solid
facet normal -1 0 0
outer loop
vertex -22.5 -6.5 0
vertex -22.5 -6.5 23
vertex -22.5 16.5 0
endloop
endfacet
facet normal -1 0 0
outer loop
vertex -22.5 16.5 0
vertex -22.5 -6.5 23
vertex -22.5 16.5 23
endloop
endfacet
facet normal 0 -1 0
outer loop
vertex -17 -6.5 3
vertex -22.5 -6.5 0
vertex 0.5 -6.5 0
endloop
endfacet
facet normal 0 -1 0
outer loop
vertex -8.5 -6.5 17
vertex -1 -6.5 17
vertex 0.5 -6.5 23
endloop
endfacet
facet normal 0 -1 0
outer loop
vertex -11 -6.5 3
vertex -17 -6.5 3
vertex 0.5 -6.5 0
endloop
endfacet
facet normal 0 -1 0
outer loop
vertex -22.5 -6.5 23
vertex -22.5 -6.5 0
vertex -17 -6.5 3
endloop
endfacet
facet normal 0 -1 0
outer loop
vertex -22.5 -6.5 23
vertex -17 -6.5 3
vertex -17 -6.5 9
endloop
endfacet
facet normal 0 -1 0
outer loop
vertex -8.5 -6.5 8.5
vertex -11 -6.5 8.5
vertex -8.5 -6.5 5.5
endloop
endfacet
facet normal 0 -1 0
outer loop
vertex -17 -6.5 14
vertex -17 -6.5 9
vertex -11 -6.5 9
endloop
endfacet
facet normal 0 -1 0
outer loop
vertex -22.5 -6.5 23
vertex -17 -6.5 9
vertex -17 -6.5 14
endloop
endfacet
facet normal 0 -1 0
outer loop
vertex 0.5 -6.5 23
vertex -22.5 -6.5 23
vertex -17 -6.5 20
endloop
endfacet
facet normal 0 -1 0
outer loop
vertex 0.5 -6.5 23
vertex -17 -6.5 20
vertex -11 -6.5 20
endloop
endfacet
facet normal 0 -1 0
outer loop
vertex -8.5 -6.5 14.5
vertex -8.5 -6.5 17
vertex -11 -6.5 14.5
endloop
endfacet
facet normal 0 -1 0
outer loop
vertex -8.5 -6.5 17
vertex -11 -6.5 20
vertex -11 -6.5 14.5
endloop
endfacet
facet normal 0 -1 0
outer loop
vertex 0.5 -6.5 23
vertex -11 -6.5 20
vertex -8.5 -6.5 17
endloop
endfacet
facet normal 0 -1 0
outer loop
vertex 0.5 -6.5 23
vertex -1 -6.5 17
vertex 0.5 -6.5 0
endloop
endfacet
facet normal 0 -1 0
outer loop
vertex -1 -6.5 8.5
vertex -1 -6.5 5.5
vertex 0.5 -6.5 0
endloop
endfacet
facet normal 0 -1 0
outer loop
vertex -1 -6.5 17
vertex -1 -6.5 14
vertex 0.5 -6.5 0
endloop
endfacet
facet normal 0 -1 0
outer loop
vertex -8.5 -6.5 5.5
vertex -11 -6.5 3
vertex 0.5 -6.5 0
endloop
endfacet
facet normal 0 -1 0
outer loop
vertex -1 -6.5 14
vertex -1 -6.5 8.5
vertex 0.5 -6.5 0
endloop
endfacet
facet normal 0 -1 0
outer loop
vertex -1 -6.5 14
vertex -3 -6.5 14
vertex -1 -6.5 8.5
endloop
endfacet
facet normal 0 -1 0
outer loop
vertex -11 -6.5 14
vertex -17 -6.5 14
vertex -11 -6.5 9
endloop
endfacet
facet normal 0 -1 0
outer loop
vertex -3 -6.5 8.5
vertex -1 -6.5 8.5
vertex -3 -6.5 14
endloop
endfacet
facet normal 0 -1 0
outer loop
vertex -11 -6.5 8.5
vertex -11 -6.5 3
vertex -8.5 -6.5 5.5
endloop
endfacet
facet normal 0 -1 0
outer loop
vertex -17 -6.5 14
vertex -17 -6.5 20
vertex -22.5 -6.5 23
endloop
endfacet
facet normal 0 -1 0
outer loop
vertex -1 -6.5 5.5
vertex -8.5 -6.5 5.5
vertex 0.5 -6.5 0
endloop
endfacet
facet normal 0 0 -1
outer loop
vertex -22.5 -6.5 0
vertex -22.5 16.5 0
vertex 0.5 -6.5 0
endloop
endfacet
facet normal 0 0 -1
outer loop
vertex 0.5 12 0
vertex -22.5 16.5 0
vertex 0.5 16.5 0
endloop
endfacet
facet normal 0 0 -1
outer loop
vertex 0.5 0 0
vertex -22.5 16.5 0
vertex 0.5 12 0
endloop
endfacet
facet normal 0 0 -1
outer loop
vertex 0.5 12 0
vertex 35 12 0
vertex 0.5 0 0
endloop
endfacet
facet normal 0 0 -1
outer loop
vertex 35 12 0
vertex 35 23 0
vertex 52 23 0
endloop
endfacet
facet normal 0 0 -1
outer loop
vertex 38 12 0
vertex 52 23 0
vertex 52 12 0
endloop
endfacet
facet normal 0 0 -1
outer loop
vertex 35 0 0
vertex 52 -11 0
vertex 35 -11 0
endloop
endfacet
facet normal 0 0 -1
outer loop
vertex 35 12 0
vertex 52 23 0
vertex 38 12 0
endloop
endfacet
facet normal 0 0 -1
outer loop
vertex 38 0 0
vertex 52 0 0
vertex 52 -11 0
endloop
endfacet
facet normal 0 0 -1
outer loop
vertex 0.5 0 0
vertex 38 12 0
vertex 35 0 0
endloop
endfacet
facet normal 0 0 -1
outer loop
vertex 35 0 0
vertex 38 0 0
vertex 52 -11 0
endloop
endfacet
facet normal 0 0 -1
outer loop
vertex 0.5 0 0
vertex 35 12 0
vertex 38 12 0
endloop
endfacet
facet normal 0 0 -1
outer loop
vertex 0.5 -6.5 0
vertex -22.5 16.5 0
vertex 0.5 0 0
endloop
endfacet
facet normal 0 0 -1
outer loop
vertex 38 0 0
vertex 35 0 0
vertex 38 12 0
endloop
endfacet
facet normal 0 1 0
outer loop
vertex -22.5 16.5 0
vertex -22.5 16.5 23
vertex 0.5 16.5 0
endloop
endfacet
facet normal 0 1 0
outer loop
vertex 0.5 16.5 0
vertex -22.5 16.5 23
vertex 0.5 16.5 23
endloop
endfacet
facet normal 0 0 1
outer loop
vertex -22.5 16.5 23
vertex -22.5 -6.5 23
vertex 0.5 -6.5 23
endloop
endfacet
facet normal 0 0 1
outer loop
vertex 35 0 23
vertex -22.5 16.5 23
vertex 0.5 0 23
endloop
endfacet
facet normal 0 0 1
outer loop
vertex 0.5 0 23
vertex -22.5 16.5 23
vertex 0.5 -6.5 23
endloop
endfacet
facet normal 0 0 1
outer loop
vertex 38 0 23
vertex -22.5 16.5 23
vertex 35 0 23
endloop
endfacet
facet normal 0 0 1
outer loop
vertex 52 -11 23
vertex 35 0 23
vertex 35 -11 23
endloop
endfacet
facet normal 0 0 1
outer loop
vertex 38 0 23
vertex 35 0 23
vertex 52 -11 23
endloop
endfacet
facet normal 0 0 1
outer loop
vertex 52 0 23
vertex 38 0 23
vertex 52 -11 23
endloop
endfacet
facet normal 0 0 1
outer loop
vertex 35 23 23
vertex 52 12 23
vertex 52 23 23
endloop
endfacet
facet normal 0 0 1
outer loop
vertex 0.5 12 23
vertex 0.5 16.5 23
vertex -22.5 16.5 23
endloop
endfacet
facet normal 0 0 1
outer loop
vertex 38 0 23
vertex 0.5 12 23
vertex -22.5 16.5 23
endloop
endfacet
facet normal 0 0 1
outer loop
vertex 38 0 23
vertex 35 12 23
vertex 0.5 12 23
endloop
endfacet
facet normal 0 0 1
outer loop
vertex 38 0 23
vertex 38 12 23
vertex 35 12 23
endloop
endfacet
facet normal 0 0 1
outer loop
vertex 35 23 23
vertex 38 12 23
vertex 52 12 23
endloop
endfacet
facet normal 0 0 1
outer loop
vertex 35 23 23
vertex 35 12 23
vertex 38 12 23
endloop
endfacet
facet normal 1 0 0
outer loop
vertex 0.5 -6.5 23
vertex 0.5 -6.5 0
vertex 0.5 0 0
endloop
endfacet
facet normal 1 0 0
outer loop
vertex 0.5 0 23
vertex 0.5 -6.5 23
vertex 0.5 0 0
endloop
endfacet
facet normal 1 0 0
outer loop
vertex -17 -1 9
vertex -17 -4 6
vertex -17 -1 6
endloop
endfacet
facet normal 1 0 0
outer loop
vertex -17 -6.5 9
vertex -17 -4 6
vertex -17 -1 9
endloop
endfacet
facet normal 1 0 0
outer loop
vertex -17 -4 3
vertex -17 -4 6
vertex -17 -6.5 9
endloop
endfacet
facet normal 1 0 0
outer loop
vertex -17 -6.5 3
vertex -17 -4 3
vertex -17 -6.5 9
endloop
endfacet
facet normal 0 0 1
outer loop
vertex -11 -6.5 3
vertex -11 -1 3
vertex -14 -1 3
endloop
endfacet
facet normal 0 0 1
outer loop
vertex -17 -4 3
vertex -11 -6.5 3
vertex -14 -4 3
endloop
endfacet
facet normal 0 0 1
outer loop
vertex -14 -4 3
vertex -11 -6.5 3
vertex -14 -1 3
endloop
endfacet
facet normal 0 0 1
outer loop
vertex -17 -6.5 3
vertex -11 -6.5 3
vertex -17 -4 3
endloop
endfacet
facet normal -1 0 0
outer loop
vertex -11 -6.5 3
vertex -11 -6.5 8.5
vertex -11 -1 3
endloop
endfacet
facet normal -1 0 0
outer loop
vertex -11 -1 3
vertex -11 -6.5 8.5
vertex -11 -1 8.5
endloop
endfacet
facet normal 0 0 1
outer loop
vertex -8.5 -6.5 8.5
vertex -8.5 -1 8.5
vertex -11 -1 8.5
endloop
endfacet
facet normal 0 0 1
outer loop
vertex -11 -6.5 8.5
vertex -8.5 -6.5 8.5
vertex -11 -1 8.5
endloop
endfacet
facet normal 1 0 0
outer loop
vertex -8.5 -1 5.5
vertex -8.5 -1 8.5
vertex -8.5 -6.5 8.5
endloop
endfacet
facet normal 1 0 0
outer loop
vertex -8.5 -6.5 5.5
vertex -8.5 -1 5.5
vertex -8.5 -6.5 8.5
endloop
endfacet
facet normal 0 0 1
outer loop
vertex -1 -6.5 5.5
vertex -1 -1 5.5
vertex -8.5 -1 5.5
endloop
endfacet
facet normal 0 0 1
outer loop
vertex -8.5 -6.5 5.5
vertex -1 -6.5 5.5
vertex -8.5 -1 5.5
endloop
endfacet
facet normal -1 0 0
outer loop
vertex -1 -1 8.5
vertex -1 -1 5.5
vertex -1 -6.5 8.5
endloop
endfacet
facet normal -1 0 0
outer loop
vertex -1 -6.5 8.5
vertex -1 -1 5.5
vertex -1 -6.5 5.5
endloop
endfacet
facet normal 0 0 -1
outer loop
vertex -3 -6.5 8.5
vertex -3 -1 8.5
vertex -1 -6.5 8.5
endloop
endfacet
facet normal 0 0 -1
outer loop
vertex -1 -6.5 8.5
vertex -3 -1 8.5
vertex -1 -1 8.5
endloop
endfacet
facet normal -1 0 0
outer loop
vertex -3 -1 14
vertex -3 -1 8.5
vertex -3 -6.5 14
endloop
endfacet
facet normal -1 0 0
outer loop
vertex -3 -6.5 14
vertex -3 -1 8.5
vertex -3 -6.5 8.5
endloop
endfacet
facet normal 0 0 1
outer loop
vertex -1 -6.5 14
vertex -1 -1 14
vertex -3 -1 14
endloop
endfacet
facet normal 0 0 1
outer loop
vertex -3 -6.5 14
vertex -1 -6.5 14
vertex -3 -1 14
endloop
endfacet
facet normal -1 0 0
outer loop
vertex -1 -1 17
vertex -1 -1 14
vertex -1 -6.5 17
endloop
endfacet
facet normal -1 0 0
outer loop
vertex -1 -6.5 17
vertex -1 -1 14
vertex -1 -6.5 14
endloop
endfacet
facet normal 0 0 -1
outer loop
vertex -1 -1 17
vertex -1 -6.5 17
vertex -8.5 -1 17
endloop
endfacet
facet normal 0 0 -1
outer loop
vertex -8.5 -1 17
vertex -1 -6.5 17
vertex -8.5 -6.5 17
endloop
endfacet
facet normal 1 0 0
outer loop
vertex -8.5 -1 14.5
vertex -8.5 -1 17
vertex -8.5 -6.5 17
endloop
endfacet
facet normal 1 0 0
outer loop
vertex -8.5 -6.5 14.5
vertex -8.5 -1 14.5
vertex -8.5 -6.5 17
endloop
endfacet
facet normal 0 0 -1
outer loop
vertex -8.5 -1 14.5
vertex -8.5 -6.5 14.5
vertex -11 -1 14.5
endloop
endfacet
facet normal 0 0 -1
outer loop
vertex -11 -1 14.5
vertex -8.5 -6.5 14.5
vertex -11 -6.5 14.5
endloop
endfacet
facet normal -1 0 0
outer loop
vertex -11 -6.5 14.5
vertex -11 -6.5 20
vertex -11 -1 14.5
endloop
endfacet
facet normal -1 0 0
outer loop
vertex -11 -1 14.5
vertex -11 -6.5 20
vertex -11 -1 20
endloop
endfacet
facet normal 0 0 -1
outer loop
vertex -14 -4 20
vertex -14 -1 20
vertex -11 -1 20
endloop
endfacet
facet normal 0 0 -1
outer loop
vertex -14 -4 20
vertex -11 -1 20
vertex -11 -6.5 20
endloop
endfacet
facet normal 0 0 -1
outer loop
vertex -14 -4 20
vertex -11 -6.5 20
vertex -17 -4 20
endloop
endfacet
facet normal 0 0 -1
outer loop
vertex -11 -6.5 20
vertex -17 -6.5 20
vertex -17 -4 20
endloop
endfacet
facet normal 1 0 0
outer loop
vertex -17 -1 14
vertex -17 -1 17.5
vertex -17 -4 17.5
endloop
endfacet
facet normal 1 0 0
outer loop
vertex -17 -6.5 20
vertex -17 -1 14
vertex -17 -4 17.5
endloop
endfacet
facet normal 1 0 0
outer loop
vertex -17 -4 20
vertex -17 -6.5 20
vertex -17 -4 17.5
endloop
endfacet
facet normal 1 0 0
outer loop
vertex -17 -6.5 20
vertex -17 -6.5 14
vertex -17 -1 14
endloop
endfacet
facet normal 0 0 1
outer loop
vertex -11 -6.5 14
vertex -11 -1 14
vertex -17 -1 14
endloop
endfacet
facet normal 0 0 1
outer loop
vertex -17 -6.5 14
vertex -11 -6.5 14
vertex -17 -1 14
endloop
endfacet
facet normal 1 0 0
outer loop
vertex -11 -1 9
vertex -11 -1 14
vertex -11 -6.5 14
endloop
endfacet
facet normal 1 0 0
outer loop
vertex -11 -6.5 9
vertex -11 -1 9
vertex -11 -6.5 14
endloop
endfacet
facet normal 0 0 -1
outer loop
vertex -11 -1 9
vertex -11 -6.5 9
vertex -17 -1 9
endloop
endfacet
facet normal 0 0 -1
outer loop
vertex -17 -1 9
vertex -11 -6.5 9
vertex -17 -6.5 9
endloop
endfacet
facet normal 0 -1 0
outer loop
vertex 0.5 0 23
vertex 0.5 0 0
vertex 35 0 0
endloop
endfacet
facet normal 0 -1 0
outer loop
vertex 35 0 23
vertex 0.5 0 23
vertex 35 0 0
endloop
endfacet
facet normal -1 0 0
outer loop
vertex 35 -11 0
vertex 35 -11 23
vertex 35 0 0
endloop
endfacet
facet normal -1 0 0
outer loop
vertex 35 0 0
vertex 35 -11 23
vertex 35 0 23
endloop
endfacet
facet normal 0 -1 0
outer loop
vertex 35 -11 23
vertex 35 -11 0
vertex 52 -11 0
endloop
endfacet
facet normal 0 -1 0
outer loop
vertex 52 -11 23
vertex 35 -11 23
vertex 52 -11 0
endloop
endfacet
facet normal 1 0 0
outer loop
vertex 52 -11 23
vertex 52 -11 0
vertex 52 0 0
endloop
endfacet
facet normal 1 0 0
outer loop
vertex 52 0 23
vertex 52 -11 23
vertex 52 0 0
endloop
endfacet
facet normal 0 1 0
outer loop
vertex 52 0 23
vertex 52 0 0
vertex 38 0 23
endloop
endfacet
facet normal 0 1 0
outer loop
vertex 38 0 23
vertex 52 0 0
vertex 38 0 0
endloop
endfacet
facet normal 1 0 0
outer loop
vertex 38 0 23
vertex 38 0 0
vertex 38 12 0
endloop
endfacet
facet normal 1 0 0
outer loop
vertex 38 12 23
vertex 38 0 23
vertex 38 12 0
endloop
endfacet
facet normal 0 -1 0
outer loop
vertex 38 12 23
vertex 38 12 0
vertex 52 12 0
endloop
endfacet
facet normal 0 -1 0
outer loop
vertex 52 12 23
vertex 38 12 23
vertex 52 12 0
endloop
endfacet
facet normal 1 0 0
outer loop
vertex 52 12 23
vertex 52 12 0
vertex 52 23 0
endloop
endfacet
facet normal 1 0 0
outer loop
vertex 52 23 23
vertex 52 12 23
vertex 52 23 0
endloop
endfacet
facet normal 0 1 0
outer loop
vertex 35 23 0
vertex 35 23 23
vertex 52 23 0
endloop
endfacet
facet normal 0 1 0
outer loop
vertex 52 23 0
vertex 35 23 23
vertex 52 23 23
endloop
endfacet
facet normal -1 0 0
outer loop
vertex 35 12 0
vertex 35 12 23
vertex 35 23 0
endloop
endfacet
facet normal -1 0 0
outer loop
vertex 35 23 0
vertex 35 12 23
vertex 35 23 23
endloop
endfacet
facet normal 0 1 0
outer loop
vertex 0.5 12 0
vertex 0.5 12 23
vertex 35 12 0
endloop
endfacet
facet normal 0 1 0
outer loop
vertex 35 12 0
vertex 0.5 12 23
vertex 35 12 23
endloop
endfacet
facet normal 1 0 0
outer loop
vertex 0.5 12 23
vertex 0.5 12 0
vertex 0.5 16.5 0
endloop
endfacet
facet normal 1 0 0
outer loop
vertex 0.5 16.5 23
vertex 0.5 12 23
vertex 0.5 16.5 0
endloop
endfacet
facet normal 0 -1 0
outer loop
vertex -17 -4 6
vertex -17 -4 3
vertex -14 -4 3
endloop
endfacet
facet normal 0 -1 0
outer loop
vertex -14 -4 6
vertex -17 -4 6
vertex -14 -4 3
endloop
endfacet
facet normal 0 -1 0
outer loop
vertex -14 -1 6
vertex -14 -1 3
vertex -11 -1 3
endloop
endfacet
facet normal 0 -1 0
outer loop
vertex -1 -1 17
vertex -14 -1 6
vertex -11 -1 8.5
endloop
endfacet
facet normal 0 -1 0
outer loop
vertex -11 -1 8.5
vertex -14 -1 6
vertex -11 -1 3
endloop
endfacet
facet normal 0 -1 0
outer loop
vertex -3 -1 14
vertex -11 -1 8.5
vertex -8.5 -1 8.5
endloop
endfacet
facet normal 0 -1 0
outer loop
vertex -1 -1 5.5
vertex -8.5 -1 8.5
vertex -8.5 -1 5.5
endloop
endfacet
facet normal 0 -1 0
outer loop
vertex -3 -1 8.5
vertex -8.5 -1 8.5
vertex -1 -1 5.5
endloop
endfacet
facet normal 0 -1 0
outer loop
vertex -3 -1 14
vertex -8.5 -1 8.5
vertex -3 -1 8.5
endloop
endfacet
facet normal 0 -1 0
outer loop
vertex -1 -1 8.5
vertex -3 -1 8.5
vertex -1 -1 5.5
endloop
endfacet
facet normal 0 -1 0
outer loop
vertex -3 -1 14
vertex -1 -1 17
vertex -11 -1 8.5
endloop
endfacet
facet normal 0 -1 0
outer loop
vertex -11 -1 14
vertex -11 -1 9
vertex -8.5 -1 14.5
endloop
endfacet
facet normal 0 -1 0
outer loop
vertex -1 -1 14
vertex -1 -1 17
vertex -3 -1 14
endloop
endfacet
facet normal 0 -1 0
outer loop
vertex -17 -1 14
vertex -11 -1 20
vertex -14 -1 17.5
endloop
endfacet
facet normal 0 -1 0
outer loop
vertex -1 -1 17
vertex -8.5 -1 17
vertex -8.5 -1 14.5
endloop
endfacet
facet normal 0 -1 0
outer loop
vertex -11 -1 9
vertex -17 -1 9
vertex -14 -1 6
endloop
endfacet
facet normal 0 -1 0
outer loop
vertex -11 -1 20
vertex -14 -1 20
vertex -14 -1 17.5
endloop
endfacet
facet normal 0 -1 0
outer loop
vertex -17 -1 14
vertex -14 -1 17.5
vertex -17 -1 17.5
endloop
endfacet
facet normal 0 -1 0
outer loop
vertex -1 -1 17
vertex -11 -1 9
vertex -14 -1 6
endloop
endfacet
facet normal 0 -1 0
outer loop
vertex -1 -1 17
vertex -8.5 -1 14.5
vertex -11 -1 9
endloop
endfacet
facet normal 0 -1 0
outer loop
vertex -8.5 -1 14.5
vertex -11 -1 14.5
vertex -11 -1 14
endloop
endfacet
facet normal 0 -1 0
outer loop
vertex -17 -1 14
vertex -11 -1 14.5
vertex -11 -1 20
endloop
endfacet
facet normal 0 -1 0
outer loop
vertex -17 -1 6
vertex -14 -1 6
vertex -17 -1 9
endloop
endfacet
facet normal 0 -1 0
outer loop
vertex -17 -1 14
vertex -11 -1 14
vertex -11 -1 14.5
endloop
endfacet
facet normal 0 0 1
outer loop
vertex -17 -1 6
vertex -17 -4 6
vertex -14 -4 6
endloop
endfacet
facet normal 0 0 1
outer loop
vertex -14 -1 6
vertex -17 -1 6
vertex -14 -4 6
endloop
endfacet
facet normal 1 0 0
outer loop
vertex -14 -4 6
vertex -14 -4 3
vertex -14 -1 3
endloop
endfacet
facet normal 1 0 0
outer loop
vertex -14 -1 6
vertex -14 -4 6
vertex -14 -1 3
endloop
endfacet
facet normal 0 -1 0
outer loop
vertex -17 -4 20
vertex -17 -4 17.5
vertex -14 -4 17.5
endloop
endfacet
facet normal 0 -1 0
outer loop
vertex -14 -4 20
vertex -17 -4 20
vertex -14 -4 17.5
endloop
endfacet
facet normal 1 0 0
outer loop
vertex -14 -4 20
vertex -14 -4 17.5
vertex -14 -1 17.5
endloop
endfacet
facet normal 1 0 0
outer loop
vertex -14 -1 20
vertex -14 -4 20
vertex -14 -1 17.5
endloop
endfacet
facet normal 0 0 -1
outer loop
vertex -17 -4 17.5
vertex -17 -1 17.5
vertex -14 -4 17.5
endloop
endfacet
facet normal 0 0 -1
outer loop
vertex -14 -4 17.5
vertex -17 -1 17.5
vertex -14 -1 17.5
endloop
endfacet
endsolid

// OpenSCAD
union(){
	difference() {
		//head
		translate([-22.5,-6.5,0]) cube([23,23,23]);

		//mouth
		translate([-8.5,-7,14]) cube([7.5,6,3]);
		translate([-11,-7,8.5]) cube([8,6,6]);
		translate([-8.5,-7,5.5]) cube([7.5,6,3]);

		//left eye socket
		translate([-17,-7,3]) cube([6,6,6]);
		//right eye socket
		translate([-17,-7,14]) cube([6,6,6]);	
	}

	//left eye
	translate([-17,-4,3]) cube([3,3,3]);
	//right eye
	translate([-17,-4,17.5]) cube([3,3,3]);

	//body
	cube([38,12,23]);

	//feet
	translate([35,12,0]) cube([17,11,23]);
	translate([35,-11,0]) cube([17,11,23]);
}
